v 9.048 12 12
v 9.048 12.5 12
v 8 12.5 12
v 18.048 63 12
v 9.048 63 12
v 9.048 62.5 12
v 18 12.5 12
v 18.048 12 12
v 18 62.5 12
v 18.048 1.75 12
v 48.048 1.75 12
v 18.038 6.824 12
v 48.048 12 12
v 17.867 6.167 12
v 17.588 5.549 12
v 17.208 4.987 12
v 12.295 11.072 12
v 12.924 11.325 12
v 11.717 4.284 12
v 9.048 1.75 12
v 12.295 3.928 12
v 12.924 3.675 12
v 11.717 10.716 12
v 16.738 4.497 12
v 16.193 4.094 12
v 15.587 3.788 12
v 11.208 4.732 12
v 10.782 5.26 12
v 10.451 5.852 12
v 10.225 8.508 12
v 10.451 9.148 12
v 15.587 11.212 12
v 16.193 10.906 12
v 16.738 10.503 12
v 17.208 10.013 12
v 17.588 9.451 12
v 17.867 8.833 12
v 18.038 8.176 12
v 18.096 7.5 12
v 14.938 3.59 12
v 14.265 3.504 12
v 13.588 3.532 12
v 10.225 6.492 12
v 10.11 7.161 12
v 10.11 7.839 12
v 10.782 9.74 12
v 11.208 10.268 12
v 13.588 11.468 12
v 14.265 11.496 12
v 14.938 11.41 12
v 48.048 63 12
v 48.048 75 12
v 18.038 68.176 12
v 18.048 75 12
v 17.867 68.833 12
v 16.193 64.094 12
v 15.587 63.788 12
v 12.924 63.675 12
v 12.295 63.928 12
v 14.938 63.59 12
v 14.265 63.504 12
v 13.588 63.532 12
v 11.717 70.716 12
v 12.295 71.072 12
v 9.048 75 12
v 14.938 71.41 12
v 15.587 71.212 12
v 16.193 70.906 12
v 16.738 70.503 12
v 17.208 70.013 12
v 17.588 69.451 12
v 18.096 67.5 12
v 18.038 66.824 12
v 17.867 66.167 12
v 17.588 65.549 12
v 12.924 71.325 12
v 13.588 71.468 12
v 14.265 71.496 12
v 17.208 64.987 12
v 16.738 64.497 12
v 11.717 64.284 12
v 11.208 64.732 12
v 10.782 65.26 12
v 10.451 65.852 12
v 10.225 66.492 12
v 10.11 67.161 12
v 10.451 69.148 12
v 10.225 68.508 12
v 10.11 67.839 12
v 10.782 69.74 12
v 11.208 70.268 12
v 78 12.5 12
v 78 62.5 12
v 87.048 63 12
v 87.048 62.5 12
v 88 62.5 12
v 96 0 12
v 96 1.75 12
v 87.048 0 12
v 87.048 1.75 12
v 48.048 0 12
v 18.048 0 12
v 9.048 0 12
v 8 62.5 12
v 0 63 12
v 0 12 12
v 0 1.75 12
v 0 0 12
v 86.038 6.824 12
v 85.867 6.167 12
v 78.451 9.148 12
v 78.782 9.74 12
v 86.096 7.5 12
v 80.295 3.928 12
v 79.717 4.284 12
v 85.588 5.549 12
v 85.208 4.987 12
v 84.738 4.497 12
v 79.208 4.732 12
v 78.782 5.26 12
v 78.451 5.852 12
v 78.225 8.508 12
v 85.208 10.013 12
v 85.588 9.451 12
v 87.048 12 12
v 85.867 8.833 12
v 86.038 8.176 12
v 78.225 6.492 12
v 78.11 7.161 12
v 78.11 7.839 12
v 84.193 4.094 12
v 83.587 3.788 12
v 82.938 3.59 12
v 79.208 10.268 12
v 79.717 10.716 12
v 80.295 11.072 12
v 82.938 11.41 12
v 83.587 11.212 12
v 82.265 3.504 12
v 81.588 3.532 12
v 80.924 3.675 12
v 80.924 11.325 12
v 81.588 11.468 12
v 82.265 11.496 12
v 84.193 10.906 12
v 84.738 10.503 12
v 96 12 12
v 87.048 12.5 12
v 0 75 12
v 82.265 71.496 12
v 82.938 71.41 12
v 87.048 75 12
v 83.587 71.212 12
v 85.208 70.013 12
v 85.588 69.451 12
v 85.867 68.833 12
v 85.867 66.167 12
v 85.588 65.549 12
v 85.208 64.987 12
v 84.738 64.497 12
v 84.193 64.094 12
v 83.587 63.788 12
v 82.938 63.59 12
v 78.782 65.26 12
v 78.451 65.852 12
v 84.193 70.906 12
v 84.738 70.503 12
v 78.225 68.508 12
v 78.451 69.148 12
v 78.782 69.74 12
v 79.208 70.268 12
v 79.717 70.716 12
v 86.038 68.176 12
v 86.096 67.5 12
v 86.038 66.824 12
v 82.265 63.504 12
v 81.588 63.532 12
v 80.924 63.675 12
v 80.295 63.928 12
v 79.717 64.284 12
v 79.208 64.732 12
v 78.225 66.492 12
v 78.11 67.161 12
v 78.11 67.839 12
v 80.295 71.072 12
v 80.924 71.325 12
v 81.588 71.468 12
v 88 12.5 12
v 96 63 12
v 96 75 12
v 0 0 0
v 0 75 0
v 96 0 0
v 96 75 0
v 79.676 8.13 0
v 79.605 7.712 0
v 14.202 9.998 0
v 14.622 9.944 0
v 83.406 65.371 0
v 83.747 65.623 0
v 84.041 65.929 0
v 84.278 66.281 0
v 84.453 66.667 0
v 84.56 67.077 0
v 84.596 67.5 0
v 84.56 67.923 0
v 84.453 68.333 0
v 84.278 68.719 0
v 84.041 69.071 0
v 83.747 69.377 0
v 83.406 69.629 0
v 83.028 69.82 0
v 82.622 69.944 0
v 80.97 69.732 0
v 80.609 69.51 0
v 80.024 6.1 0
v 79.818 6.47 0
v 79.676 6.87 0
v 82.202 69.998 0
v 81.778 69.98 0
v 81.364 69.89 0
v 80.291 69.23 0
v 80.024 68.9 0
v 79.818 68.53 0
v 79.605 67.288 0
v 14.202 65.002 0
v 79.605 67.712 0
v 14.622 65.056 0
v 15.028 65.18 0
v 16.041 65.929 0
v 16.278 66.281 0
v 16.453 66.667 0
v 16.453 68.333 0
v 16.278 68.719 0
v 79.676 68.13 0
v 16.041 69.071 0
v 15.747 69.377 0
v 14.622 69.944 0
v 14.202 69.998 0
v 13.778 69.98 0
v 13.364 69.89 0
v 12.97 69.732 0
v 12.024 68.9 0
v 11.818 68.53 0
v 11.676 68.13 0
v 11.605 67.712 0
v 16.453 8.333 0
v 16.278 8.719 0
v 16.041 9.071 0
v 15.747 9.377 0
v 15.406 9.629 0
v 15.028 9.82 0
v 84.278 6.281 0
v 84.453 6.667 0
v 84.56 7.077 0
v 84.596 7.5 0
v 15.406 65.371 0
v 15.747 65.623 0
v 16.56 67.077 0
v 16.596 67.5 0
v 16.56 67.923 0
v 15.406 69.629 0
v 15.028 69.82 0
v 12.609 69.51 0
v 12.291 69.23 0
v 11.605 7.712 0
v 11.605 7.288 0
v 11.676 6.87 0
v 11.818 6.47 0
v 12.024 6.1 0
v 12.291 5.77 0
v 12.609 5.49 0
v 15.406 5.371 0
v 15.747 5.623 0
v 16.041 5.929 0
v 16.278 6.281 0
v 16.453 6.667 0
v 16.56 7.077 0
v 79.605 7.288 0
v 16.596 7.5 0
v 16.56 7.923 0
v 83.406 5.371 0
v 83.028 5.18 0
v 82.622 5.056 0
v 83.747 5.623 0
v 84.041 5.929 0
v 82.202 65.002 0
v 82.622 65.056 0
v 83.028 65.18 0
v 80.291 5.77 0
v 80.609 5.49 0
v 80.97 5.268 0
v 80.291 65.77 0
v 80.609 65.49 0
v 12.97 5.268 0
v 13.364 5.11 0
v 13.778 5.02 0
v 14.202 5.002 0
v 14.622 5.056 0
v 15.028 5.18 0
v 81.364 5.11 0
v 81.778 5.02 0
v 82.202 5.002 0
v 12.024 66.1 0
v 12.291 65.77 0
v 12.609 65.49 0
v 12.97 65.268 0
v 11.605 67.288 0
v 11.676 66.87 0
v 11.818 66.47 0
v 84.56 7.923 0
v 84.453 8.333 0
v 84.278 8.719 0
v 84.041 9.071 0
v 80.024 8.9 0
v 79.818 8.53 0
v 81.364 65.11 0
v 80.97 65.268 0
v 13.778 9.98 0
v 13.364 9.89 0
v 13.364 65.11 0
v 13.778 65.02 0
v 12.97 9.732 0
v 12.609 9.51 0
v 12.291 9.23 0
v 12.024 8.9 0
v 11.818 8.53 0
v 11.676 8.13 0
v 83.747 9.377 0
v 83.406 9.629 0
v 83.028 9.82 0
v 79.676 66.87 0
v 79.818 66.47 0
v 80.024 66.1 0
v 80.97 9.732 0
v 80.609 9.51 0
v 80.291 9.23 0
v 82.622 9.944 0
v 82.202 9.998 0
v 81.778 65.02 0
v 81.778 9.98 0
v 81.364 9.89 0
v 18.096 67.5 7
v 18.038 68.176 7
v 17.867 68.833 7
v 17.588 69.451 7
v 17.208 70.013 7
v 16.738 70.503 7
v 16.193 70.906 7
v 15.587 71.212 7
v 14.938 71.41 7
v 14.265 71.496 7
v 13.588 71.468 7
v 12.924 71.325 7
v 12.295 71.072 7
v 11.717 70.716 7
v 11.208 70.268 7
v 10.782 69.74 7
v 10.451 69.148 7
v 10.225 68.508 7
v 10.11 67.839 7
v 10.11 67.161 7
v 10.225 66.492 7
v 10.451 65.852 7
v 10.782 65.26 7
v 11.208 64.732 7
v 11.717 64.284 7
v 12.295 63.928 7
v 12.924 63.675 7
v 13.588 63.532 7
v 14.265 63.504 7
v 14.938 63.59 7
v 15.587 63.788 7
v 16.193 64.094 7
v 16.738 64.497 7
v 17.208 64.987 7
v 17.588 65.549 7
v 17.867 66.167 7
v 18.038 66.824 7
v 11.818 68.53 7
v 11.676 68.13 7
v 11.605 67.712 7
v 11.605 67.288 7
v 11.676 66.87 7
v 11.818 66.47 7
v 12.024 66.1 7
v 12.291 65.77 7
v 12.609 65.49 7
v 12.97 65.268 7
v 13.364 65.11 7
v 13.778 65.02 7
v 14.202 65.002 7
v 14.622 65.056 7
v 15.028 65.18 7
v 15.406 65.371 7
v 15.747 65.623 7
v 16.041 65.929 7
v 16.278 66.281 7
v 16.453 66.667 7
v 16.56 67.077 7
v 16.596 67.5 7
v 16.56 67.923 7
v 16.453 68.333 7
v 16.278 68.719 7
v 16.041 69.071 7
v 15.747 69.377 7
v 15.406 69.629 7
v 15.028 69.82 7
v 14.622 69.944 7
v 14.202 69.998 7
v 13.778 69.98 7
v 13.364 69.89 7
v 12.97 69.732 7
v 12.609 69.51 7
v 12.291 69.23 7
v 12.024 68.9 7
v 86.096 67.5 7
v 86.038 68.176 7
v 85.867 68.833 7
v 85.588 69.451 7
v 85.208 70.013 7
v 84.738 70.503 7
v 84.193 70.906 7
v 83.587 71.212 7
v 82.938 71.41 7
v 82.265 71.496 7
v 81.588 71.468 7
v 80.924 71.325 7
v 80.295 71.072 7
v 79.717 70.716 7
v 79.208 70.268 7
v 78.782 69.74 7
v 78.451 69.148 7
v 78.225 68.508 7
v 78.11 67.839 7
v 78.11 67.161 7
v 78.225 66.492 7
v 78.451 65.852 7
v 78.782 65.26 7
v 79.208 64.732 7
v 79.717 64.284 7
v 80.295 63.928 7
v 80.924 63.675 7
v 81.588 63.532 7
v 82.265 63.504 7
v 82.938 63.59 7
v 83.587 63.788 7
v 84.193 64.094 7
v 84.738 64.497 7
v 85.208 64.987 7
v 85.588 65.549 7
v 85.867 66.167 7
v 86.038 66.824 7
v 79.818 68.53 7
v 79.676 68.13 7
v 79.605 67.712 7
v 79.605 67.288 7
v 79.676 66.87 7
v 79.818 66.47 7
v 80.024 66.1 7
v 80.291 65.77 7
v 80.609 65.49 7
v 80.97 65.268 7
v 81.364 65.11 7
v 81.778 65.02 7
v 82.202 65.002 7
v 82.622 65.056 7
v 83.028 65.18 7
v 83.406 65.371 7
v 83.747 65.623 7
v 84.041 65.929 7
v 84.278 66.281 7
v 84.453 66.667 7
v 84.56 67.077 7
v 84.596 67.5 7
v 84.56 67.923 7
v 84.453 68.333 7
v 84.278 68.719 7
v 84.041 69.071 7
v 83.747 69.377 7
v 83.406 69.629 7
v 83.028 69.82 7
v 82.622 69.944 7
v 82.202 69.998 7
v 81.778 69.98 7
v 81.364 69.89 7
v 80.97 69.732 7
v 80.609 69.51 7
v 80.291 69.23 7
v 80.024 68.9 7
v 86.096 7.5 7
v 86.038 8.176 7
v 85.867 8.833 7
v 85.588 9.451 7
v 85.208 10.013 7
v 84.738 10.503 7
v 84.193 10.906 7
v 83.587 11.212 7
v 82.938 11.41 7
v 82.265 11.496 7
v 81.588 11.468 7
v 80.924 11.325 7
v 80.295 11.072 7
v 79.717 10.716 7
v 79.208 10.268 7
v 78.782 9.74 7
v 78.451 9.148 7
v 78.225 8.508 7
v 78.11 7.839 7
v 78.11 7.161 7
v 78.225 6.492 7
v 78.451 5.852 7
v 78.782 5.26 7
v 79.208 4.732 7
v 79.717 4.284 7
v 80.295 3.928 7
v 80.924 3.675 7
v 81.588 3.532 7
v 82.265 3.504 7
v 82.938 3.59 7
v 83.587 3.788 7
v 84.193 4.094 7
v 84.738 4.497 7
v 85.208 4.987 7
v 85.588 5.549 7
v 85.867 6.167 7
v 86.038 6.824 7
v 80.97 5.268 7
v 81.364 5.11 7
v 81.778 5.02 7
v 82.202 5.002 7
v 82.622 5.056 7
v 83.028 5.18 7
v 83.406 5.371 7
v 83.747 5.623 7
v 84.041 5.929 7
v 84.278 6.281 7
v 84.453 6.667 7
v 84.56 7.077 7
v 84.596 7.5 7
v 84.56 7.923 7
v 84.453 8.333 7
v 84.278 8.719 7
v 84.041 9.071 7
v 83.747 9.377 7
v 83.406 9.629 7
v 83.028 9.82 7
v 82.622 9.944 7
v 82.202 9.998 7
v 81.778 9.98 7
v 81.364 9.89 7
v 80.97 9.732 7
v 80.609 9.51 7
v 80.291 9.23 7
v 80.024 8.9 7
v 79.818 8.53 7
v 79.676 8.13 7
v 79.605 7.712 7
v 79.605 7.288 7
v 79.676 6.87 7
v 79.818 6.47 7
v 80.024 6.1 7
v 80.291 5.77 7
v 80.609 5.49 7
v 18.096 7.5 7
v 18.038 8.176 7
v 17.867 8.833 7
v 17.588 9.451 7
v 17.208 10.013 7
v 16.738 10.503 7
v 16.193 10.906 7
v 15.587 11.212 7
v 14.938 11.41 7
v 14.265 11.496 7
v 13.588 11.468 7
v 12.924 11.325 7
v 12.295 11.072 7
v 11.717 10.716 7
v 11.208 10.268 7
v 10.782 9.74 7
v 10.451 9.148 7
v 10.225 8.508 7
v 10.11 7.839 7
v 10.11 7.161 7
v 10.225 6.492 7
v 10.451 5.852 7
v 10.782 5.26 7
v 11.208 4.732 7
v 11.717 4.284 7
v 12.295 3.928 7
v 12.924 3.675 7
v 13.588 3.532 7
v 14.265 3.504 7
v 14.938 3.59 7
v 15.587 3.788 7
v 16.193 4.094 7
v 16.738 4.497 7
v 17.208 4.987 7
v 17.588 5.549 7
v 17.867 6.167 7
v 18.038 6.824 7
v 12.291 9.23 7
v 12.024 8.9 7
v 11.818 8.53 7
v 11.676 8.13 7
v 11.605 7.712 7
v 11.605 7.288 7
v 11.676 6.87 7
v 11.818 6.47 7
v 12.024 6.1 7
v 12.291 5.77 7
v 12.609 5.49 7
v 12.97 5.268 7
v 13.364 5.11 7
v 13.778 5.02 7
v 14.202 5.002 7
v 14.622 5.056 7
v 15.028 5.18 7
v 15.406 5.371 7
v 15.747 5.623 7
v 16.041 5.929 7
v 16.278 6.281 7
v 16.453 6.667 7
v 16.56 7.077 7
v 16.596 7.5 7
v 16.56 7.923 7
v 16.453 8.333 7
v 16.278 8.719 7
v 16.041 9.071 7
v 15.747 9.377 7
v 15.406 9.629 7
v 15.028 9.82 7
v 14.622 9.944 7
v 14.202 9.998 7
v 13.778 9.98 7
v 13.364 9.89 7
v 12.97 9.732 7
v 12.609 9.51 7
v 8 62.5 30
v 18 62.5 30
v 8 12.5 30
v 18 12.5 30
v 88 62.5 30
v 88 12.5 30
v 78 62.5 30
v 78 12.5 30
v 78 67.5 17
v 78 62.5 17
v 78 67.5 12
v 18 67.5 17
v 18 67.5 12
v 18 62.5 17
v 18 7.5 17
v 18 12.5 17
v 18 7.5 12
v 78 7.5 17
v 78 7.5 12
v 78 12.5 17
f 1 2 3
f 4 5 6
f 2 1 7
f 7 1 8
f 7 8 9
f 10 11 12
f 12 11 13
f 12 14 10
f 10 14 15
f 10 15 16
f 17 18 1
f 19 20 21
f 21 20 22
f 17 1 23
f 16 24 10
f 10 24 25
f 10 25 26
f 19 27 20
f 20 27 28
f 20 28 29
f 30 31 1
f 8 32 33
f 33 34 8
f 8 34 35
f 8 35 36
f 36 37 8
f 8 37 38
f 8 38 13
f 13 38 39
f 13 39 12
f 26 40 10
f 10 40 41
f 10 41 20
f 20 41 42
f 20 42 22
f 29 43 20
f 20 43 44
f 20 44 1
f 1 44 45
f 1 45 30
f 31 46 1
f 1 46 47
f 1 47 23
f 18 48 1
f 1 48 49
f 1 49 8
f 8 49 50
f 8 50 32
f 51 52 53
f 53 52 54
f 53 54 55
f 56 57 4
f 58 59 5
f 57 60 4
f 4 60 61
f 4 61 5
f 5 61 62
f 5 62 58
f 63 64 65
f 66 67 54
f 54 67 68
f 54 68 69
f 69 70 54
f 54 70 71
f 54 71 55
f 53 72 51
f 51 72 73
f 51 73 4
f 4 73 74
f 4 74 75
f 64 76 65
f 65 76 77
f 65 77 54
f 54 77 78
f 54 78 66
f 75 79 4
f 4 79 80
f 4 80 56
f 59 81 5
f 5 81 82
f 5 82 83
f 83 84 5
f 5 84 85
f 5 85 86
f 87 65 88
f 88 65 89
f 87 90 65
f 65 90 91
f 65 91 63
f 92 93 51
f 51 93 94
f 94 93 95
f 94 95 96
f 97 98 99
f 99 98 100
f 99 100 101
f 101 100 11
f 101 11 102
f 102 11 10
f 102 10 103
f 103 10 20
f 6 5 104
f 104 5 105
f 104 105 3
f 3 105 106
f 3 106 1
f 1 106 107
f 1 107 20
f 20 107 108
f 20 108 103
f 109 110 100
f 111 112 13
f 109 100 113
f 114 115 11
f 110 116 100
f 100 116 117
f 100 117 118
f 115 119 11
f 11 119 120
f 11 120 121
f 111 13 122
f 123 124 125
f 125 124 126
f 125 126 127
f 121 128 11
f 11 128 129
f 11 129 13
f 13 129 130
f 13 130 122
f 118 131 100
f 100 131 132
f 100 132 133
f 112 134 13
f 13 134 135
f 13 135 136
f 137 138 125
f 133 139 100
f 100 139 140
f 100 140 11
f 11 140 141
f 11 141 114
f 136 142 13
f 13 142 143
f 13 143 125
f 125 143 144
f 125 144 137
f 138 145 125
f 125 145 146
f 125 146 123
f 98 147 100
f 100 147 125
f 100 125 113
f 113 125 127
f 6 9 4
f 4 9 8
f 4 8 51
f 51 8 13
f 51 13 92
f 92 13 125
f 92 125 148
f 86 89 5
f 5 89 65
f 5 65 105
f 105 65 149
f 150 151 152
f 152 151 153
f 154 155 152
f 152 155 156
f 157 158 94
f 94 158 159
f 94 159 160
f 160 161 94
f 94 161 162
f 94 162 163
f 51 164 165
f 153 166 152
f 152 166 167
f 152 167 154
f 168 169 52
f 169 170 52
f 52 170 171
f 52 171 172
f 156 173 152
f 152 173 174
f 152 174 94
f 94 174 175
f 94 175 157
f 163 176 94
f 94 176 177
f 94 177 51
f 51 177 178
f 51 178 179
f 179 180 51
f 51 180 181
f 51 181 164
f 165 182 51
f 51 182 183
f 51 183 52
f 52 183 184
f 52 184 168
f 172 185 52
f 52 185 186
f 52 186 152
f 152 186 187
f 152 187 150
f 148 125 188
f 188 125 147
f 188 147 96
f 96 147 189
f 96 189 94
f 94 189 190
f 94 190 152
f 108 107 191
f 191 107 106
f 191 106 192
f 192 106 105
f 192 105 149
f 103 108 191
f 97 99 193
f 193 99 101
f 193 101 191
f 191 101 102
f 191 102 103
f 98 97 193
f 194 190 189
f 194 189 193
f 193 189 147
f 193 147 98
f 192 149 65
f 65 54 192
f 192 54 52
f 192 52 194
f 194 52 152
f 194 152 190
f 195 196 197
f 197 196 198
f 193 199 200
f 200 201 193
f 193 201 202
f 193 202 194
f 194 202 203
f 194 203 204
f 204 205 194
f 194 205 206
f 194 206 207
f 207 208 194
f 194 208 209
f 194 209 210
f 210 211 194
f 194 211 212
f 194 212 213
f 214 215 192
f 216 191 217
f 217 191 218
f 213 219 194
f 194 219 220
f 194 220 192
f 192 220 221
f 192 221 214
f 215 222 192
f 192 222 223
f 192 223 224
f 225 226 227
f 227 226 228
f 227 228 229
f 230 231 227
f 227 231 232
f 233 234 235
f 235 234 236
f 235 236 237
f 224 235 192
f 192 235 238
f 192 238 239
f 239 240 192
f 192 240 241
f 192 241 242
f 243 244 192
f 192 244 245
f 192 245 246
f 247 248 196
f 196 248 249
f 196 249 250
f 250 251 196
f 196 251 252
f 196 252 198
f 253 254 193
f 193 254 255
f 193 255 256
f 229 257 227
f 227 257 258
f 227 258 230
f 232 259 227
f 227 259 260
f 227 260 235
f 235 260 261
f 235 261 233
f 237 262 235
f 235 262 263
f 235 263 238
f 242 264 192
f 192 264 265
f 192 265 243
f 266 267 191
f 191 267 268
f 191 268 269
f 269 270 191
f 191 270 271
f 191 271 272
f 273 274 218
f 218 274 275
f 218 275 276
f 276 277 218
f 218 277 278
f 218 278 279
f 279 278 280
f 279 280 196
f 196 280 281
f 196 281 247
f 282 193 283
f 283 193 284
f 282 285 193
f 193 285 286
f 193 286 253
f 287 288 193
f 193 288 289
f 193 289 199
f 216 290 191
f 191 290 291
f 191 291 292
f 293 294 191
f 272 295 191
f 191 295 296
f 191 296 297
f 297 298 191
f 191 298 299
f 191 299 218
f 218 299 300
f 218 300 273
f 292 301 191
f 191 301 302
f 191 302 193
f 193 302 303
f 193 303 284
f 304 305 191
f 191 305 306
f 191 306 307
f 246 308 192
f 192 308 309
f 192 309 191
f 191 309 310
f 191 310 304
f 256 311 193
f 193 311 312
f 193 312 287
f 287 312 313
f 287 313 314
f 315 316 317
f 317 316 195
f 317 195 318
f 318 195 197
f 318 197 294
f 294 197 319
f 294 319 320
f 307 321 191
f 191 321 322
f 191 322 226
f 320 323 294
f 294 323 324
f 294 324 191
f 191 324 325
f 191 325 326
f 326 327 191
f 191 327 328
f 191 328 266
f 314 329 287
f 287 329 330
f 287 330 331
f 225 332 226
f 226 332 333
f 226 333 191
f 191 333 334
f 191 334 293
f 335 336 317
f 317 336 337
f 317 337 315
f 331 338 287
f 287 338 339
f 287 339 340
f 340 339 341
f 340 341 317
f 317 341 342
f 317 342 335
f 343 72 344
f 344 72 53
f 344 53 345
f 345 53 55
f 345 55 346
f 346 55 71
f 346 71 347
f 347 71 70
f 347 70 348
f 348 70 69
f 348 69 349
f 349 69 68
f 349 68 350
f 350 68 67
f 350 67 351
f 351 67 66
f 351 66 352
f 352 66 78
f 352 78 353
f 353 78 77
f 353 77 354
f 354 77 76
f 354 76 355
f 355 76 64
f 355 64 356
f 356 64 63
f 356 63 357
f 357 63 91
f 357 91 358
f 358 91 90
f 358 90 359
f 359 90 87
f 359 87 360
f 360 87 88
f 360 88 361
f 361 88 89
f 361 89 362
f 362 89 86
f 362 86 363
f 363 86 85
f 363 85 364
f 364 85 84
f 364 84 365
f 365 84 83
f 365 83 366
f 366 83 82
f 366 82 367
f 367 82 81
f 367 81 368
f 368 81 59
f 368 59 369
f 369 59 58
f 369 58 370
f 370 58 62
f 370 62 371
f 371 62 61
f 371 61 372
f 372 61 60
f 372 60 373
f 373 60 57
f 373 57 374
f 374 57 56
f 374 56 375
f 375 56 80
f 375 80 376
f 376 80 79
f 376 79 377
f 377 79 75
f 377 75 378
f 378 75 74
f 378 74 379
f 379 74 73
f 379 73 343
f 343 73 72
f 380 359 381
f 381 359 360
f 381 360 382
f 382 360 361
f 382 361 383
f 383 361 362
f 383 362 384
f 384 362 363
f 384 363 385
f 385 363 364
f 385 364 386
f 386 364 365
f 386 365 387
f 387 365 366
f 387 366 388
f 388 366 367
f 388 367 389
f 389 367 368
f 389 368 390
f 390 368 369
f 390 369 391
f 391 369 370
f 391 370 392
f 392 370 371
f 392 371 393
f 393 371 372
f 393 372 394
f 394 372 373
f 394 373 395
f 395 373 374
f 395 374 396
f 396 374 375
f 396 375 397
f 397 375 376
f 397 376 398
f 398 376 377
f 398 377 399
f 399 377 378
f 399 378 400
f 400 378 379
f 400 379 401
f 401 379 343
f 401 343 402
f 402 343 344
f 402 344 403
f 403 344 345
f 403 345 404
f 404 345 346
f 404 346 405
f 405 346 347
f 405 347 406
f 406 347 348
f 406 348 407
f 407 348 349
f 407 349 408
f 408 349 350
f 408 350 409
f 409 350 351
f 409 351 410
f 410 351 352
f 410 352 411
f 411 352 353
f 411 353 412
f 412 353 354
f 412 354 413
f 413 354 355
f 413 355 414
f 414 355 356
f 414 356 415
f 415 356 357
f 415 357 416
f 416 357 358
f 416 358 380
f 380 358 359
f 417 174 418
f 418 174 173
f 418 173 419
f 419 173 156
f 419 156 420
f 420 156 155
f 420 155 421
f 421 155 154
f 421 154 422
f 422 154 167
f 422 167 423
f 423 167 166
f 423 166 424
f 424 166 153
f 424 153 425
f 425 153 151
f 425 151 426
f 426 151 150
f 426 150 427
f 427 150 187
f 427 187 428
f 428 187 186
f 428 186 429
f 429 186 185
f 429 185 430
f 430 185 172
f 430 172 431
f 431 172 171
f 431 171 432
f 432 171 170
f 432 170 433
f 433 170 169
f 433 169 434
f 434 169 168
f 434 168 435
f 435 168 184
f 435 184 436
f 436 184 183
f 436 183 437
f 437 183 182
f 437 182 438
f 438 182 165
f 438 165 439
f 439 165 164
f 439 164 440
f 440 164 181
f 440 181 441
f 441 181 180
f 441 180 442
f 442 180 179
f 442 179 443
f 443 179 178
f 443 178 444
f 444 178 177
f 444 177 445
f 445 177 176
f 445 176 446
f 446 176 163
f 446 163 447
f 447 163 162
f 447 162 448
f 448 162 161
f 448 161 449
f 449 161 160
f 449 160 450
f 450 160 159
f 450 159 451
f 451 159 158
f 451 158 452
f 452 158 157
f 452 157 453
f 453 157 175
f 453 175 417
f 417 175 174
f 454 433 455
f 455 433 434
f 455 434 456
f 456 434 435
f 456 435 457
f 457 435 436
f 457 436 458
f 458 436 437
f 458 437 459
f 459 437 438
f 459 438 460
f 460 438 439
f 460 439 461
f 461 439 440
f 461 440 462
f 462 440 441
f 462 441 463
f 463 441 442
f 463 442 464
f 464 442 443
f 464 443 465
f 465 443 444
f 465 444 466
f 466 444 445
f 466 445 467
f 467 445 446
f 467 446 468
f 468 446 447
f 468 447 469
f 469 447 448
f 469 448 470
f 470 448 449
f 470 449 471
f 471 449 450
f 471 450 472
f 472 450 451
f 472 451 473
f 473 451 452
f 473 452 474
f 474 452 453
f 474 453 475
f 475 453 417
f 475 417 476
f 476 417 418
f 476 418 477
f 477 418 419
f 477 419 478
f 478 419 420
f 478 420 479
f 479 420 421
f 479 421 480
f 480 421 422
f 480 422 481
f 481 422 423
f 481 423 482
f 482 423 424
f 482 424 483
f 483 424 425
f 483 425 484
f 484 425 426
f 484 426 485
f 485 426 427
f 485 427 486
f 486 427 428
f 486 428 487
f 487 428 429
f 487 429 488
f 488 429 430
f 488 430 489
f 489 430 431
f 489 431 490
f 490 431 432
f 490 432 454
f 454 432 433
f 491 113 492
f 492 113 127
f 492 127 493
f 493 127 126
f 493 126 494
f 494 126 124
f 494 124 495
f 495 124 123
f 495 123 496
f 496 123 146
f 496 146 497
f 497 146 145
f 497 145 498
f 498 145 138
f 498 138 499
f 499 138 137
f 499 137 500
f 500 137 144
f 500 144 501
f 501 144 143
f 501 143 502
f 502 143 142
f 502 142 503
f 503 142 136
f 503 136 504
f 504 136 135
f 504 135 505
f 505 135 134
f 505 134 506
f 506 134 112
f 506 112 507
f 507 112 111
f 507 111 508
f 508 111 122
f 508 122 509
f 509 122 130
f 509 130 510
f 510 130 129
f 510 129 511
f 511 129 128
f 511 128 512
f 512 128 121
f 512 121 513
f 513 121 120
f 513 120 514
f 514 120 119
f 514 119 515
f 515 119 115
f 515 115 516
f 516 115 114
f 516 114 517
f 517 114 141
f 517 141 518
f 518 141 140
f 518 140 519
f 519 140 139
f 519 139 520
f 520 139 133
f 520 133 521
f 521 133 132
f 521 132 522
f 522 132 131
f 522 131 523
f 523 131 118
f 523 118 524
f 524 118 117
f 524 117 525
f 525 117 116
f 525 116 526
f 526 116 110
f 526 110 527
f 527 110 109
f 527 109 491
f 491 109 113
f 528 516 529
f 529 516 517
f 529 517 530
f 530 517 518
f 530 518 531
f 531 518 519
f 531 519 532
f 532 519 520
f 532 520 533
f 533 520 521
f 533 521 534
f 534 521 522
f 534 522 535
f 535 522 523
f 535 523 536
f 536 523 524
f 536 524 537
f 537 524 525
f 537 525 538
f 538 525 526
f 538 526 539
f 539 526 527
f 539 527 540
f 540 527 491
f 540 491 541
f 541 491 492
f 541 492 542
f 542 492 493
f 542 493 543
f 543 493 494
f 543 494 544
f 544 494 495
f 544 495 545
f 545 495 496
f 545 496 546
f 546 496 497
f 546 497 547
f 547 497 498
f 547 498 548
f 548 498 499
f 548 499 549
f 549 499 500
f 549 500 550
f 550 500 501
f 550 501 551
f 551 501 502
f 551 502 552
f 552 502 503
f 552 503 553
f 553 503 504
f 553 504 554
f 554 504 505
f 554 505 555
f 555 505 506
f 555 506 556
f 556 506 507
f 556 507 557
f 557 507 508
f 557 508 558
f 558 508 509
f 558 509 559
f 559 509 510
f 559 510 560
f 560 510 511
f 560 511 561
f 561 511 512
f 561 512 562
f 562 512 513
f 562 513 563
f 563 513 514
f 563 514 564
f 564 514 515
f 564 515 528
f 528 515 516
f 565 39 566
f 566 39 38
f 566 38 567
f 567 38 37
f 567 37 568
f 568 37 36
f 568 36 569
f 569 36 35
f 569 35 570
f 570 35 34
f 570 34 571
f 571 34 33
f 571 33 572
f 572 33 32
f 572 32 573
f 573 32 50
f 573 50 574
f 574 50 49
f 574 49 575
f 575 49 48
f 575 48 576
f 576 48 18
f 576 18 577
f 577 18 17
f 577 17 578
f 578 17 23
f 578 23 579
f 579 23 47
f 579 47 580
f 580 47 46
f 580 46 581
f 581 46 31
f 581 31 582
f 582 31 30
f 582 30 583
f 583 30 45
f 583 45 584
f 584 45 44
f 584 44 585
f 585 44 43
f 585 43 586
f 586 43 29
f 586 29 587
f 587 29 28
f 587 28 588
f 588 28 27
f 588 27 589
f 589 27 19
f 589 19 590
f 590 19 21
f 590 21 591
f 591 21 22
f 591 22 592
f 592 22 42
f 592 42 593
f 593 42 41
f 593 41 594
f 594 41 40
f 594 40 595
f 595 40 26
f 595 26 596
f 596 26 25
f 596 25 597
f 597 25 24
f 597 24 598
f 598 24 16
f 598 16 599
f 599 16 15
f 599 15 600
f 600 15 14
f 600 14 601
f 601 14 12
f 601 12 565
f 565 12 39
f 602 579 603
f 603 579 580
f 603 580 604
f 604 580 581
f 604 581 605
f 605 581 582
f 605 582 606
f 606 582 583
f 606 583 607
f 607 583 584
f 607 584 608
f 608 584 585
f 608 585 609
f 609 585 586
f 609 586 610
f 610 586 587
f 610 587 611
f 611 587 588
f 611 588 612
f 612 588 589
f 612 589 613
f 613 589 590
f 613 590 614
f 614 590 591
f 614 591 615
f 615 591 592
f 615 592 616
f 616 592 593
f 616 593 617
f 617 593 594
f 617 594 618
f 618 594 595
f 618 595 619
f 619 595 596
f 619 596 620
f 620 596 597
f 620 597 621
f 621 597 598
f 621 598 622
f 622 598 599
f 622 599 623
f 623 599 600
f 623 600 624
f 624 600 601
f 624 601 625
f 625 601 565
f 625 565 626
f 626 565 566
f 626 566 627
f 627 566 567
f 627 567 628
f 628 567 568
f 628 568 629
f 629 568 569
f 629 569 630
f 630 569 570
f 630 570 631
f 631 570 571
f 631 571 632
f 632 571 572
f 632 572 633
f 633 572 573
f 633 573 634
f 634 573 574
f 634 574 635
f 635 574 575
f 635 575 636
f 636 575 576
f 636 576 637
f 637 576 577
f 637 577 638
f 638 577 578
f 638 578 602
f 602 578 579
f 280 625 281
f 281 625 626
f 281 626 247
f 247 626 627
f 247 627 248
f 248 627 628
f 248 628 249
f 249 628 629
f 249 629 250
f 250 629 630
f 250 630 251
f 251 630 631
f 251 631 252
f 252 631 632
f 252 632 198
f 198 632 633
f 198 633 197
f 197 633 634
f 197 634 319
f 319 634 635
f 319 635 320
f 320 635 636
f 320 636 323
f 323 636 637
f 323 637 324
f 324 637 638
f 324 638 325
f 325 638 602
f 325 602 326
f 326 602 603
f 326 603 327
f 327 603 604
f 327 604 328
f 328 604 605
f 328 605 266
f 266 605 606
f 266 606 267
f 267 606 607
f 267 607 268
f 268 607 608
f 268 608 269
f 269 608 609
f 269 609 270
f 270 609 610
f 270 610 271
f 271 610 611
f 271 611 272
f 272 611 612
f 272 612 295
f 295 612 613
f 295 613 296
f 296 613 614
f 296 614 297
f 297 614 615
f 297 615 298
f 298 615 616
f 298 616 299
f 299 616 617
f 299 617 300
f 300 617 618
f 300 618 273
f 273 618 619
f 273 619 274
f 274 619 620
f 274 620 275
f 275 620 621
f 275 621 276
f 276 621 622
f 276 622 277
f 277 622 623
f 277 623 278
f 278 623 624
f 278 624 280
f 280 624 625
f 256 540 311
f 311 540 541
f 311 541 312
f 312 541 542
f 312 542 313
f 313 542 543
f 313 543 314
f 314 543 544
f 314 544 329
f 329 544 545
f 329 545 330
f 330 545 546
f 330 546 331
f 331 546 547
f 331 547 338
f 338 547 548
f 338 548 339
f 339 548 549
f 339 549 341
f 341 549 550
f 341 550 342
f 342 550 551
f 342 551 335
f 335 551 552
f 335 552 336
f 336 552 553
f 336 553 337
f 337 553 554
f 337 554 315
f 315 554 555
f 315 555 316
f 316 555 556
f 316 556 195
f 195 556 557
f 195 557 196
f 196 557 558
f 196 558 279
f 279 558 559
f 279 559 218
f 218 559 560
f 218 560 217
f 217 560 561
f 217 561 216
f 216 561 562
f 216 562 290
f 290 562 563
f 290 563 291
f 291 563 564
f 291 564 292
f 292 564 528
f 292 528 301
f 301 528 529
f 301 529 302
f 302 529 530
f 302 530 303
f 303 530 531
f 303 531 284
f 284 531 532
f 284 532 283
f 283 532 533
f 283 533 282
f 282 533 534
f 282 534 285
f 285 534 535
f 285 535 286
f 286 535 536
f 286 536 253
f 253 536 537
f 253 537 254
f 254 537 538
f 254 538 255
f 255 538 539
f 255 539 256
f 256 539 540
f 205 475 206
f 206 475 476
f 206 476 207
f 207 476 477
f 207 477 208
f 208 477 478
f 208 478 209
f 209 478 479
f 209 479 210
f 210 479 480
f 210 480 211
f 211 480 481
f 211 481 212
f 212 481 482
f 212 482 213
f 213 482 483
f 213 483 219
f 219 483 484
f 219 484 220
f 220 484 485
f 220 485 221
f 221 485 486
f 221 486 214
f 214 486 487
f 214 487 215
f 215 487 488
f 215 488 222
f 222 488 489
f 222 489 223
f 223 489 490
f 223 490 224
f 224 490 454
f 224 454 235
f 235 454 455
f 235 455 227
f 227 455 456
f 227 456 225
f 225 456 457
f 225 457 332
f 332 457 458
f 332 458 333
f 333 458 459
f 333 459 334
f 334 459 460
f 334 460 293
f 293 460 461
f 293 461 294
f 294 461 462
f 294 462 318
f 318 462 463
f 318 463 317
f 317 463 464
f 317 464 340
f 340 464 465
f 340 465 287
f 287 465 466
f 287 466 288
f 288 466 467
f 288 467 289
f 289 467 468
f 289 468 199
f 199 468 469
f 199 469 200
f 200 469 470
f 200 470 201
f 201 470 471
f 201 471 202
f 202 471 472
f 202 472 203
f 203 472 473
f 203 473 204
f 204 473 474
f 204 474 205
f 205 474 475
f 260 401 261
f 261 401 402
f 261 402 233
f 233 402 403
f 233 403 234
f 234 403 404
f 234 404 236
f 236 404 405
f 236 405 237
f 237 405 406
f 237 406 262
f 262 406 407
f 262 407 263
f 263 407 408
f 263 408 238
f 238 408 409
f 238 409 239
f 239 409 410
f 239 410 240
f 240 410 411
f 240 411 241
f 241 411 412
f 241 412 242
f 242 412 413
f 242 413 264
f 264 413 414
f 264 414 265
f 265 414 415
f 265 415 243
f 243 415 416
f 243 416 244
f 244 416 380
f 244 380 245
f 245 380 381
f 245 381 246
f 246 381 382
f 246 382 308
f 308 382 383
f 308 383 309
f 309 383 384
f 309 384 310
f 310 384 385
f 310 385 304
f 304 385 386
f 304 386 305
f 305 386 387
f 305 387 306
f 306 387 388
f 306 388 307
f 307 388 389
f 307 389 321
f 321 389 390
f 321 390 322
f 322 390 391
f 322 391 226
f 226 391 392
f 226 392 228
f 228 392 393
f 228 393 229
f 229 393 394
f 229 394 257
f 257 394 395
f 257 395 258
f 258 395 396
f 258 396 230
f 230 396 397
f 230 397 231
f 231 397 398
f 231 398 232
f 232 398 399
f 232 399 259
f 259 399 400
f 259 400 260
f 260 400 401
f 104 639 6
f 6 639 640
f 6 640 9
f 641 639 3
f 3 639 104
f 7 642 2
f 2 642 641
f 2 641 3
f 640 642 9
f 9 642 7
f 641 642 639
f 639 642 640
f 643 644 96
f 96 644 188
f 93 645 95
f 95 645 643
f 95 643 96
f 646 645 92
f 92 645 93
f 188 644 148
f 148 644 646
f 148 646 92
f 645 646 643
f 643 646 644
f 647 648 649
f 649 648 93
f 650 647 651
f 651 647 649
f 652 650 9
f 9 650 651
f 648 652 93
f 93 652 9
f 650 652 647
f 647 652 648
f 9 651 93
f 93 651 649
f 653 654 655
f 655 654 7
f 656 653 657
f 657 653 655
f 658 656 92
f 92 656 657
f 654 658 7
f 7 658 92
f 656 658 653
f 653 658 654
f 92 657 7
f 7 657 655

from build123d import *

# Parameters (mm, degrees)
SKETCH_1_W          = 96
SKETCH_1_H          = 75
EXTRUDE_1_DEPTH     = 12
SKETCH_2_R          = 4
CUT_EXTRUDE_1_DEPTH = 5
SKETCH_3_R          = 2.5
CUT_EXTRUDE_2_DEPTH = 123.413234579
SKETCH_4_W          = 10
SKETCH_4_H          = 50
EXTRUDE_2_DEPTH     = 18
SKETCH_5_W          = 60
SKETCH_5_H          = 5
EXTRUDE_7_DEPTH     = 5
SKETCH_6_W          = 60
SKETCH_6_H          = 5
EXTRUDE_8_DEPTH     = 5


with BuildPart() as part:
    # 스케치1 → 보스-돌출1 (new body)
    with BuildSketch(Plane.XY):
        with Locations((48, 37.5)):
            Rectangle(SKETCH_1_W, SKETCH_1_H)
    extrude(amount=EXTRUDE_1_DEPTH)

    # 스케치2 → 컷-돌출1 (cut)
    with BuildSketch(Plane.XY.offset(12)):
        with Locations((14.09562434, 67.5)):
            Circle(SKETCH_2_R)
        with Locations((82.09562434, 67.5)):
            Circle(SKETCH_2_R)
        with Locations((82.09562434, 7.5)):
            Circle(SKETCH_2_R)
        with Locations((14.09562434, 7.5)):
            Circle(SKETCH_2_R)
    extrude(amount=-CUT_EXTRUDE_1_DEPTH, mode=Mode.SUBTRACT)

    # 스케치3 → 컷-돌출2 (cut, through all)
    with BuildSketch(Plane.XY.offset(12)):
        with Locations((14.09562434, 67.5)):
            Circle(SKETCH_3_R)
        with Locations((82.09562434, 67.5)):
            Circle(SKETCH_3_R)
        with Locations((82.09562434, 7.5)):
            Circle(SKETCH_3_R)
        with Locations((14.09562434, 7.5)):
            Circle(SKETCH_3_R)
    extrude(amount=-CUT_EXTRUDE_2_DEPTH, mode=Mode.SUBTRACT)

    # 스케치4 → 보스-돌출2 (add)
    with BuildSketch(Plane.XY.offset(12)):
        with Locations((13, 37.5)):
            Rectangle(SKETCH_4_W, SKETCH_4_H)
        with Locations((83, 37.5)):
            Rectangle(SKETCH_4_W, SKETCH_4_H)
    extrude(amount=EXTRUDE_2_DEPTH)


with BuildPart() as body_2:
    # 스케치5 → 보스-돌출7 (new body)
    with BuildSketch(Plane.XY.offset(12)):
        with Locations((48, 65)):
            Rectangle(SKETCH_5_W, SKETCH_5_H)
    extrude(amount=EXTRUDE_7_DEPTH)


with BuildPart() as body_3:
    # 스케치6 → 보스-돌출8 (new body)
    with BuildSketch(Plane.XY.offset(12)):
        with Locations((48, 10)):
            Rectangle(SKETCH_6_W, SKETCH_6_H)
    extrude(amount=EXTRUDE_8_DEPTH)


solid = Compound([part.part, body_2.part, body_3.part])
